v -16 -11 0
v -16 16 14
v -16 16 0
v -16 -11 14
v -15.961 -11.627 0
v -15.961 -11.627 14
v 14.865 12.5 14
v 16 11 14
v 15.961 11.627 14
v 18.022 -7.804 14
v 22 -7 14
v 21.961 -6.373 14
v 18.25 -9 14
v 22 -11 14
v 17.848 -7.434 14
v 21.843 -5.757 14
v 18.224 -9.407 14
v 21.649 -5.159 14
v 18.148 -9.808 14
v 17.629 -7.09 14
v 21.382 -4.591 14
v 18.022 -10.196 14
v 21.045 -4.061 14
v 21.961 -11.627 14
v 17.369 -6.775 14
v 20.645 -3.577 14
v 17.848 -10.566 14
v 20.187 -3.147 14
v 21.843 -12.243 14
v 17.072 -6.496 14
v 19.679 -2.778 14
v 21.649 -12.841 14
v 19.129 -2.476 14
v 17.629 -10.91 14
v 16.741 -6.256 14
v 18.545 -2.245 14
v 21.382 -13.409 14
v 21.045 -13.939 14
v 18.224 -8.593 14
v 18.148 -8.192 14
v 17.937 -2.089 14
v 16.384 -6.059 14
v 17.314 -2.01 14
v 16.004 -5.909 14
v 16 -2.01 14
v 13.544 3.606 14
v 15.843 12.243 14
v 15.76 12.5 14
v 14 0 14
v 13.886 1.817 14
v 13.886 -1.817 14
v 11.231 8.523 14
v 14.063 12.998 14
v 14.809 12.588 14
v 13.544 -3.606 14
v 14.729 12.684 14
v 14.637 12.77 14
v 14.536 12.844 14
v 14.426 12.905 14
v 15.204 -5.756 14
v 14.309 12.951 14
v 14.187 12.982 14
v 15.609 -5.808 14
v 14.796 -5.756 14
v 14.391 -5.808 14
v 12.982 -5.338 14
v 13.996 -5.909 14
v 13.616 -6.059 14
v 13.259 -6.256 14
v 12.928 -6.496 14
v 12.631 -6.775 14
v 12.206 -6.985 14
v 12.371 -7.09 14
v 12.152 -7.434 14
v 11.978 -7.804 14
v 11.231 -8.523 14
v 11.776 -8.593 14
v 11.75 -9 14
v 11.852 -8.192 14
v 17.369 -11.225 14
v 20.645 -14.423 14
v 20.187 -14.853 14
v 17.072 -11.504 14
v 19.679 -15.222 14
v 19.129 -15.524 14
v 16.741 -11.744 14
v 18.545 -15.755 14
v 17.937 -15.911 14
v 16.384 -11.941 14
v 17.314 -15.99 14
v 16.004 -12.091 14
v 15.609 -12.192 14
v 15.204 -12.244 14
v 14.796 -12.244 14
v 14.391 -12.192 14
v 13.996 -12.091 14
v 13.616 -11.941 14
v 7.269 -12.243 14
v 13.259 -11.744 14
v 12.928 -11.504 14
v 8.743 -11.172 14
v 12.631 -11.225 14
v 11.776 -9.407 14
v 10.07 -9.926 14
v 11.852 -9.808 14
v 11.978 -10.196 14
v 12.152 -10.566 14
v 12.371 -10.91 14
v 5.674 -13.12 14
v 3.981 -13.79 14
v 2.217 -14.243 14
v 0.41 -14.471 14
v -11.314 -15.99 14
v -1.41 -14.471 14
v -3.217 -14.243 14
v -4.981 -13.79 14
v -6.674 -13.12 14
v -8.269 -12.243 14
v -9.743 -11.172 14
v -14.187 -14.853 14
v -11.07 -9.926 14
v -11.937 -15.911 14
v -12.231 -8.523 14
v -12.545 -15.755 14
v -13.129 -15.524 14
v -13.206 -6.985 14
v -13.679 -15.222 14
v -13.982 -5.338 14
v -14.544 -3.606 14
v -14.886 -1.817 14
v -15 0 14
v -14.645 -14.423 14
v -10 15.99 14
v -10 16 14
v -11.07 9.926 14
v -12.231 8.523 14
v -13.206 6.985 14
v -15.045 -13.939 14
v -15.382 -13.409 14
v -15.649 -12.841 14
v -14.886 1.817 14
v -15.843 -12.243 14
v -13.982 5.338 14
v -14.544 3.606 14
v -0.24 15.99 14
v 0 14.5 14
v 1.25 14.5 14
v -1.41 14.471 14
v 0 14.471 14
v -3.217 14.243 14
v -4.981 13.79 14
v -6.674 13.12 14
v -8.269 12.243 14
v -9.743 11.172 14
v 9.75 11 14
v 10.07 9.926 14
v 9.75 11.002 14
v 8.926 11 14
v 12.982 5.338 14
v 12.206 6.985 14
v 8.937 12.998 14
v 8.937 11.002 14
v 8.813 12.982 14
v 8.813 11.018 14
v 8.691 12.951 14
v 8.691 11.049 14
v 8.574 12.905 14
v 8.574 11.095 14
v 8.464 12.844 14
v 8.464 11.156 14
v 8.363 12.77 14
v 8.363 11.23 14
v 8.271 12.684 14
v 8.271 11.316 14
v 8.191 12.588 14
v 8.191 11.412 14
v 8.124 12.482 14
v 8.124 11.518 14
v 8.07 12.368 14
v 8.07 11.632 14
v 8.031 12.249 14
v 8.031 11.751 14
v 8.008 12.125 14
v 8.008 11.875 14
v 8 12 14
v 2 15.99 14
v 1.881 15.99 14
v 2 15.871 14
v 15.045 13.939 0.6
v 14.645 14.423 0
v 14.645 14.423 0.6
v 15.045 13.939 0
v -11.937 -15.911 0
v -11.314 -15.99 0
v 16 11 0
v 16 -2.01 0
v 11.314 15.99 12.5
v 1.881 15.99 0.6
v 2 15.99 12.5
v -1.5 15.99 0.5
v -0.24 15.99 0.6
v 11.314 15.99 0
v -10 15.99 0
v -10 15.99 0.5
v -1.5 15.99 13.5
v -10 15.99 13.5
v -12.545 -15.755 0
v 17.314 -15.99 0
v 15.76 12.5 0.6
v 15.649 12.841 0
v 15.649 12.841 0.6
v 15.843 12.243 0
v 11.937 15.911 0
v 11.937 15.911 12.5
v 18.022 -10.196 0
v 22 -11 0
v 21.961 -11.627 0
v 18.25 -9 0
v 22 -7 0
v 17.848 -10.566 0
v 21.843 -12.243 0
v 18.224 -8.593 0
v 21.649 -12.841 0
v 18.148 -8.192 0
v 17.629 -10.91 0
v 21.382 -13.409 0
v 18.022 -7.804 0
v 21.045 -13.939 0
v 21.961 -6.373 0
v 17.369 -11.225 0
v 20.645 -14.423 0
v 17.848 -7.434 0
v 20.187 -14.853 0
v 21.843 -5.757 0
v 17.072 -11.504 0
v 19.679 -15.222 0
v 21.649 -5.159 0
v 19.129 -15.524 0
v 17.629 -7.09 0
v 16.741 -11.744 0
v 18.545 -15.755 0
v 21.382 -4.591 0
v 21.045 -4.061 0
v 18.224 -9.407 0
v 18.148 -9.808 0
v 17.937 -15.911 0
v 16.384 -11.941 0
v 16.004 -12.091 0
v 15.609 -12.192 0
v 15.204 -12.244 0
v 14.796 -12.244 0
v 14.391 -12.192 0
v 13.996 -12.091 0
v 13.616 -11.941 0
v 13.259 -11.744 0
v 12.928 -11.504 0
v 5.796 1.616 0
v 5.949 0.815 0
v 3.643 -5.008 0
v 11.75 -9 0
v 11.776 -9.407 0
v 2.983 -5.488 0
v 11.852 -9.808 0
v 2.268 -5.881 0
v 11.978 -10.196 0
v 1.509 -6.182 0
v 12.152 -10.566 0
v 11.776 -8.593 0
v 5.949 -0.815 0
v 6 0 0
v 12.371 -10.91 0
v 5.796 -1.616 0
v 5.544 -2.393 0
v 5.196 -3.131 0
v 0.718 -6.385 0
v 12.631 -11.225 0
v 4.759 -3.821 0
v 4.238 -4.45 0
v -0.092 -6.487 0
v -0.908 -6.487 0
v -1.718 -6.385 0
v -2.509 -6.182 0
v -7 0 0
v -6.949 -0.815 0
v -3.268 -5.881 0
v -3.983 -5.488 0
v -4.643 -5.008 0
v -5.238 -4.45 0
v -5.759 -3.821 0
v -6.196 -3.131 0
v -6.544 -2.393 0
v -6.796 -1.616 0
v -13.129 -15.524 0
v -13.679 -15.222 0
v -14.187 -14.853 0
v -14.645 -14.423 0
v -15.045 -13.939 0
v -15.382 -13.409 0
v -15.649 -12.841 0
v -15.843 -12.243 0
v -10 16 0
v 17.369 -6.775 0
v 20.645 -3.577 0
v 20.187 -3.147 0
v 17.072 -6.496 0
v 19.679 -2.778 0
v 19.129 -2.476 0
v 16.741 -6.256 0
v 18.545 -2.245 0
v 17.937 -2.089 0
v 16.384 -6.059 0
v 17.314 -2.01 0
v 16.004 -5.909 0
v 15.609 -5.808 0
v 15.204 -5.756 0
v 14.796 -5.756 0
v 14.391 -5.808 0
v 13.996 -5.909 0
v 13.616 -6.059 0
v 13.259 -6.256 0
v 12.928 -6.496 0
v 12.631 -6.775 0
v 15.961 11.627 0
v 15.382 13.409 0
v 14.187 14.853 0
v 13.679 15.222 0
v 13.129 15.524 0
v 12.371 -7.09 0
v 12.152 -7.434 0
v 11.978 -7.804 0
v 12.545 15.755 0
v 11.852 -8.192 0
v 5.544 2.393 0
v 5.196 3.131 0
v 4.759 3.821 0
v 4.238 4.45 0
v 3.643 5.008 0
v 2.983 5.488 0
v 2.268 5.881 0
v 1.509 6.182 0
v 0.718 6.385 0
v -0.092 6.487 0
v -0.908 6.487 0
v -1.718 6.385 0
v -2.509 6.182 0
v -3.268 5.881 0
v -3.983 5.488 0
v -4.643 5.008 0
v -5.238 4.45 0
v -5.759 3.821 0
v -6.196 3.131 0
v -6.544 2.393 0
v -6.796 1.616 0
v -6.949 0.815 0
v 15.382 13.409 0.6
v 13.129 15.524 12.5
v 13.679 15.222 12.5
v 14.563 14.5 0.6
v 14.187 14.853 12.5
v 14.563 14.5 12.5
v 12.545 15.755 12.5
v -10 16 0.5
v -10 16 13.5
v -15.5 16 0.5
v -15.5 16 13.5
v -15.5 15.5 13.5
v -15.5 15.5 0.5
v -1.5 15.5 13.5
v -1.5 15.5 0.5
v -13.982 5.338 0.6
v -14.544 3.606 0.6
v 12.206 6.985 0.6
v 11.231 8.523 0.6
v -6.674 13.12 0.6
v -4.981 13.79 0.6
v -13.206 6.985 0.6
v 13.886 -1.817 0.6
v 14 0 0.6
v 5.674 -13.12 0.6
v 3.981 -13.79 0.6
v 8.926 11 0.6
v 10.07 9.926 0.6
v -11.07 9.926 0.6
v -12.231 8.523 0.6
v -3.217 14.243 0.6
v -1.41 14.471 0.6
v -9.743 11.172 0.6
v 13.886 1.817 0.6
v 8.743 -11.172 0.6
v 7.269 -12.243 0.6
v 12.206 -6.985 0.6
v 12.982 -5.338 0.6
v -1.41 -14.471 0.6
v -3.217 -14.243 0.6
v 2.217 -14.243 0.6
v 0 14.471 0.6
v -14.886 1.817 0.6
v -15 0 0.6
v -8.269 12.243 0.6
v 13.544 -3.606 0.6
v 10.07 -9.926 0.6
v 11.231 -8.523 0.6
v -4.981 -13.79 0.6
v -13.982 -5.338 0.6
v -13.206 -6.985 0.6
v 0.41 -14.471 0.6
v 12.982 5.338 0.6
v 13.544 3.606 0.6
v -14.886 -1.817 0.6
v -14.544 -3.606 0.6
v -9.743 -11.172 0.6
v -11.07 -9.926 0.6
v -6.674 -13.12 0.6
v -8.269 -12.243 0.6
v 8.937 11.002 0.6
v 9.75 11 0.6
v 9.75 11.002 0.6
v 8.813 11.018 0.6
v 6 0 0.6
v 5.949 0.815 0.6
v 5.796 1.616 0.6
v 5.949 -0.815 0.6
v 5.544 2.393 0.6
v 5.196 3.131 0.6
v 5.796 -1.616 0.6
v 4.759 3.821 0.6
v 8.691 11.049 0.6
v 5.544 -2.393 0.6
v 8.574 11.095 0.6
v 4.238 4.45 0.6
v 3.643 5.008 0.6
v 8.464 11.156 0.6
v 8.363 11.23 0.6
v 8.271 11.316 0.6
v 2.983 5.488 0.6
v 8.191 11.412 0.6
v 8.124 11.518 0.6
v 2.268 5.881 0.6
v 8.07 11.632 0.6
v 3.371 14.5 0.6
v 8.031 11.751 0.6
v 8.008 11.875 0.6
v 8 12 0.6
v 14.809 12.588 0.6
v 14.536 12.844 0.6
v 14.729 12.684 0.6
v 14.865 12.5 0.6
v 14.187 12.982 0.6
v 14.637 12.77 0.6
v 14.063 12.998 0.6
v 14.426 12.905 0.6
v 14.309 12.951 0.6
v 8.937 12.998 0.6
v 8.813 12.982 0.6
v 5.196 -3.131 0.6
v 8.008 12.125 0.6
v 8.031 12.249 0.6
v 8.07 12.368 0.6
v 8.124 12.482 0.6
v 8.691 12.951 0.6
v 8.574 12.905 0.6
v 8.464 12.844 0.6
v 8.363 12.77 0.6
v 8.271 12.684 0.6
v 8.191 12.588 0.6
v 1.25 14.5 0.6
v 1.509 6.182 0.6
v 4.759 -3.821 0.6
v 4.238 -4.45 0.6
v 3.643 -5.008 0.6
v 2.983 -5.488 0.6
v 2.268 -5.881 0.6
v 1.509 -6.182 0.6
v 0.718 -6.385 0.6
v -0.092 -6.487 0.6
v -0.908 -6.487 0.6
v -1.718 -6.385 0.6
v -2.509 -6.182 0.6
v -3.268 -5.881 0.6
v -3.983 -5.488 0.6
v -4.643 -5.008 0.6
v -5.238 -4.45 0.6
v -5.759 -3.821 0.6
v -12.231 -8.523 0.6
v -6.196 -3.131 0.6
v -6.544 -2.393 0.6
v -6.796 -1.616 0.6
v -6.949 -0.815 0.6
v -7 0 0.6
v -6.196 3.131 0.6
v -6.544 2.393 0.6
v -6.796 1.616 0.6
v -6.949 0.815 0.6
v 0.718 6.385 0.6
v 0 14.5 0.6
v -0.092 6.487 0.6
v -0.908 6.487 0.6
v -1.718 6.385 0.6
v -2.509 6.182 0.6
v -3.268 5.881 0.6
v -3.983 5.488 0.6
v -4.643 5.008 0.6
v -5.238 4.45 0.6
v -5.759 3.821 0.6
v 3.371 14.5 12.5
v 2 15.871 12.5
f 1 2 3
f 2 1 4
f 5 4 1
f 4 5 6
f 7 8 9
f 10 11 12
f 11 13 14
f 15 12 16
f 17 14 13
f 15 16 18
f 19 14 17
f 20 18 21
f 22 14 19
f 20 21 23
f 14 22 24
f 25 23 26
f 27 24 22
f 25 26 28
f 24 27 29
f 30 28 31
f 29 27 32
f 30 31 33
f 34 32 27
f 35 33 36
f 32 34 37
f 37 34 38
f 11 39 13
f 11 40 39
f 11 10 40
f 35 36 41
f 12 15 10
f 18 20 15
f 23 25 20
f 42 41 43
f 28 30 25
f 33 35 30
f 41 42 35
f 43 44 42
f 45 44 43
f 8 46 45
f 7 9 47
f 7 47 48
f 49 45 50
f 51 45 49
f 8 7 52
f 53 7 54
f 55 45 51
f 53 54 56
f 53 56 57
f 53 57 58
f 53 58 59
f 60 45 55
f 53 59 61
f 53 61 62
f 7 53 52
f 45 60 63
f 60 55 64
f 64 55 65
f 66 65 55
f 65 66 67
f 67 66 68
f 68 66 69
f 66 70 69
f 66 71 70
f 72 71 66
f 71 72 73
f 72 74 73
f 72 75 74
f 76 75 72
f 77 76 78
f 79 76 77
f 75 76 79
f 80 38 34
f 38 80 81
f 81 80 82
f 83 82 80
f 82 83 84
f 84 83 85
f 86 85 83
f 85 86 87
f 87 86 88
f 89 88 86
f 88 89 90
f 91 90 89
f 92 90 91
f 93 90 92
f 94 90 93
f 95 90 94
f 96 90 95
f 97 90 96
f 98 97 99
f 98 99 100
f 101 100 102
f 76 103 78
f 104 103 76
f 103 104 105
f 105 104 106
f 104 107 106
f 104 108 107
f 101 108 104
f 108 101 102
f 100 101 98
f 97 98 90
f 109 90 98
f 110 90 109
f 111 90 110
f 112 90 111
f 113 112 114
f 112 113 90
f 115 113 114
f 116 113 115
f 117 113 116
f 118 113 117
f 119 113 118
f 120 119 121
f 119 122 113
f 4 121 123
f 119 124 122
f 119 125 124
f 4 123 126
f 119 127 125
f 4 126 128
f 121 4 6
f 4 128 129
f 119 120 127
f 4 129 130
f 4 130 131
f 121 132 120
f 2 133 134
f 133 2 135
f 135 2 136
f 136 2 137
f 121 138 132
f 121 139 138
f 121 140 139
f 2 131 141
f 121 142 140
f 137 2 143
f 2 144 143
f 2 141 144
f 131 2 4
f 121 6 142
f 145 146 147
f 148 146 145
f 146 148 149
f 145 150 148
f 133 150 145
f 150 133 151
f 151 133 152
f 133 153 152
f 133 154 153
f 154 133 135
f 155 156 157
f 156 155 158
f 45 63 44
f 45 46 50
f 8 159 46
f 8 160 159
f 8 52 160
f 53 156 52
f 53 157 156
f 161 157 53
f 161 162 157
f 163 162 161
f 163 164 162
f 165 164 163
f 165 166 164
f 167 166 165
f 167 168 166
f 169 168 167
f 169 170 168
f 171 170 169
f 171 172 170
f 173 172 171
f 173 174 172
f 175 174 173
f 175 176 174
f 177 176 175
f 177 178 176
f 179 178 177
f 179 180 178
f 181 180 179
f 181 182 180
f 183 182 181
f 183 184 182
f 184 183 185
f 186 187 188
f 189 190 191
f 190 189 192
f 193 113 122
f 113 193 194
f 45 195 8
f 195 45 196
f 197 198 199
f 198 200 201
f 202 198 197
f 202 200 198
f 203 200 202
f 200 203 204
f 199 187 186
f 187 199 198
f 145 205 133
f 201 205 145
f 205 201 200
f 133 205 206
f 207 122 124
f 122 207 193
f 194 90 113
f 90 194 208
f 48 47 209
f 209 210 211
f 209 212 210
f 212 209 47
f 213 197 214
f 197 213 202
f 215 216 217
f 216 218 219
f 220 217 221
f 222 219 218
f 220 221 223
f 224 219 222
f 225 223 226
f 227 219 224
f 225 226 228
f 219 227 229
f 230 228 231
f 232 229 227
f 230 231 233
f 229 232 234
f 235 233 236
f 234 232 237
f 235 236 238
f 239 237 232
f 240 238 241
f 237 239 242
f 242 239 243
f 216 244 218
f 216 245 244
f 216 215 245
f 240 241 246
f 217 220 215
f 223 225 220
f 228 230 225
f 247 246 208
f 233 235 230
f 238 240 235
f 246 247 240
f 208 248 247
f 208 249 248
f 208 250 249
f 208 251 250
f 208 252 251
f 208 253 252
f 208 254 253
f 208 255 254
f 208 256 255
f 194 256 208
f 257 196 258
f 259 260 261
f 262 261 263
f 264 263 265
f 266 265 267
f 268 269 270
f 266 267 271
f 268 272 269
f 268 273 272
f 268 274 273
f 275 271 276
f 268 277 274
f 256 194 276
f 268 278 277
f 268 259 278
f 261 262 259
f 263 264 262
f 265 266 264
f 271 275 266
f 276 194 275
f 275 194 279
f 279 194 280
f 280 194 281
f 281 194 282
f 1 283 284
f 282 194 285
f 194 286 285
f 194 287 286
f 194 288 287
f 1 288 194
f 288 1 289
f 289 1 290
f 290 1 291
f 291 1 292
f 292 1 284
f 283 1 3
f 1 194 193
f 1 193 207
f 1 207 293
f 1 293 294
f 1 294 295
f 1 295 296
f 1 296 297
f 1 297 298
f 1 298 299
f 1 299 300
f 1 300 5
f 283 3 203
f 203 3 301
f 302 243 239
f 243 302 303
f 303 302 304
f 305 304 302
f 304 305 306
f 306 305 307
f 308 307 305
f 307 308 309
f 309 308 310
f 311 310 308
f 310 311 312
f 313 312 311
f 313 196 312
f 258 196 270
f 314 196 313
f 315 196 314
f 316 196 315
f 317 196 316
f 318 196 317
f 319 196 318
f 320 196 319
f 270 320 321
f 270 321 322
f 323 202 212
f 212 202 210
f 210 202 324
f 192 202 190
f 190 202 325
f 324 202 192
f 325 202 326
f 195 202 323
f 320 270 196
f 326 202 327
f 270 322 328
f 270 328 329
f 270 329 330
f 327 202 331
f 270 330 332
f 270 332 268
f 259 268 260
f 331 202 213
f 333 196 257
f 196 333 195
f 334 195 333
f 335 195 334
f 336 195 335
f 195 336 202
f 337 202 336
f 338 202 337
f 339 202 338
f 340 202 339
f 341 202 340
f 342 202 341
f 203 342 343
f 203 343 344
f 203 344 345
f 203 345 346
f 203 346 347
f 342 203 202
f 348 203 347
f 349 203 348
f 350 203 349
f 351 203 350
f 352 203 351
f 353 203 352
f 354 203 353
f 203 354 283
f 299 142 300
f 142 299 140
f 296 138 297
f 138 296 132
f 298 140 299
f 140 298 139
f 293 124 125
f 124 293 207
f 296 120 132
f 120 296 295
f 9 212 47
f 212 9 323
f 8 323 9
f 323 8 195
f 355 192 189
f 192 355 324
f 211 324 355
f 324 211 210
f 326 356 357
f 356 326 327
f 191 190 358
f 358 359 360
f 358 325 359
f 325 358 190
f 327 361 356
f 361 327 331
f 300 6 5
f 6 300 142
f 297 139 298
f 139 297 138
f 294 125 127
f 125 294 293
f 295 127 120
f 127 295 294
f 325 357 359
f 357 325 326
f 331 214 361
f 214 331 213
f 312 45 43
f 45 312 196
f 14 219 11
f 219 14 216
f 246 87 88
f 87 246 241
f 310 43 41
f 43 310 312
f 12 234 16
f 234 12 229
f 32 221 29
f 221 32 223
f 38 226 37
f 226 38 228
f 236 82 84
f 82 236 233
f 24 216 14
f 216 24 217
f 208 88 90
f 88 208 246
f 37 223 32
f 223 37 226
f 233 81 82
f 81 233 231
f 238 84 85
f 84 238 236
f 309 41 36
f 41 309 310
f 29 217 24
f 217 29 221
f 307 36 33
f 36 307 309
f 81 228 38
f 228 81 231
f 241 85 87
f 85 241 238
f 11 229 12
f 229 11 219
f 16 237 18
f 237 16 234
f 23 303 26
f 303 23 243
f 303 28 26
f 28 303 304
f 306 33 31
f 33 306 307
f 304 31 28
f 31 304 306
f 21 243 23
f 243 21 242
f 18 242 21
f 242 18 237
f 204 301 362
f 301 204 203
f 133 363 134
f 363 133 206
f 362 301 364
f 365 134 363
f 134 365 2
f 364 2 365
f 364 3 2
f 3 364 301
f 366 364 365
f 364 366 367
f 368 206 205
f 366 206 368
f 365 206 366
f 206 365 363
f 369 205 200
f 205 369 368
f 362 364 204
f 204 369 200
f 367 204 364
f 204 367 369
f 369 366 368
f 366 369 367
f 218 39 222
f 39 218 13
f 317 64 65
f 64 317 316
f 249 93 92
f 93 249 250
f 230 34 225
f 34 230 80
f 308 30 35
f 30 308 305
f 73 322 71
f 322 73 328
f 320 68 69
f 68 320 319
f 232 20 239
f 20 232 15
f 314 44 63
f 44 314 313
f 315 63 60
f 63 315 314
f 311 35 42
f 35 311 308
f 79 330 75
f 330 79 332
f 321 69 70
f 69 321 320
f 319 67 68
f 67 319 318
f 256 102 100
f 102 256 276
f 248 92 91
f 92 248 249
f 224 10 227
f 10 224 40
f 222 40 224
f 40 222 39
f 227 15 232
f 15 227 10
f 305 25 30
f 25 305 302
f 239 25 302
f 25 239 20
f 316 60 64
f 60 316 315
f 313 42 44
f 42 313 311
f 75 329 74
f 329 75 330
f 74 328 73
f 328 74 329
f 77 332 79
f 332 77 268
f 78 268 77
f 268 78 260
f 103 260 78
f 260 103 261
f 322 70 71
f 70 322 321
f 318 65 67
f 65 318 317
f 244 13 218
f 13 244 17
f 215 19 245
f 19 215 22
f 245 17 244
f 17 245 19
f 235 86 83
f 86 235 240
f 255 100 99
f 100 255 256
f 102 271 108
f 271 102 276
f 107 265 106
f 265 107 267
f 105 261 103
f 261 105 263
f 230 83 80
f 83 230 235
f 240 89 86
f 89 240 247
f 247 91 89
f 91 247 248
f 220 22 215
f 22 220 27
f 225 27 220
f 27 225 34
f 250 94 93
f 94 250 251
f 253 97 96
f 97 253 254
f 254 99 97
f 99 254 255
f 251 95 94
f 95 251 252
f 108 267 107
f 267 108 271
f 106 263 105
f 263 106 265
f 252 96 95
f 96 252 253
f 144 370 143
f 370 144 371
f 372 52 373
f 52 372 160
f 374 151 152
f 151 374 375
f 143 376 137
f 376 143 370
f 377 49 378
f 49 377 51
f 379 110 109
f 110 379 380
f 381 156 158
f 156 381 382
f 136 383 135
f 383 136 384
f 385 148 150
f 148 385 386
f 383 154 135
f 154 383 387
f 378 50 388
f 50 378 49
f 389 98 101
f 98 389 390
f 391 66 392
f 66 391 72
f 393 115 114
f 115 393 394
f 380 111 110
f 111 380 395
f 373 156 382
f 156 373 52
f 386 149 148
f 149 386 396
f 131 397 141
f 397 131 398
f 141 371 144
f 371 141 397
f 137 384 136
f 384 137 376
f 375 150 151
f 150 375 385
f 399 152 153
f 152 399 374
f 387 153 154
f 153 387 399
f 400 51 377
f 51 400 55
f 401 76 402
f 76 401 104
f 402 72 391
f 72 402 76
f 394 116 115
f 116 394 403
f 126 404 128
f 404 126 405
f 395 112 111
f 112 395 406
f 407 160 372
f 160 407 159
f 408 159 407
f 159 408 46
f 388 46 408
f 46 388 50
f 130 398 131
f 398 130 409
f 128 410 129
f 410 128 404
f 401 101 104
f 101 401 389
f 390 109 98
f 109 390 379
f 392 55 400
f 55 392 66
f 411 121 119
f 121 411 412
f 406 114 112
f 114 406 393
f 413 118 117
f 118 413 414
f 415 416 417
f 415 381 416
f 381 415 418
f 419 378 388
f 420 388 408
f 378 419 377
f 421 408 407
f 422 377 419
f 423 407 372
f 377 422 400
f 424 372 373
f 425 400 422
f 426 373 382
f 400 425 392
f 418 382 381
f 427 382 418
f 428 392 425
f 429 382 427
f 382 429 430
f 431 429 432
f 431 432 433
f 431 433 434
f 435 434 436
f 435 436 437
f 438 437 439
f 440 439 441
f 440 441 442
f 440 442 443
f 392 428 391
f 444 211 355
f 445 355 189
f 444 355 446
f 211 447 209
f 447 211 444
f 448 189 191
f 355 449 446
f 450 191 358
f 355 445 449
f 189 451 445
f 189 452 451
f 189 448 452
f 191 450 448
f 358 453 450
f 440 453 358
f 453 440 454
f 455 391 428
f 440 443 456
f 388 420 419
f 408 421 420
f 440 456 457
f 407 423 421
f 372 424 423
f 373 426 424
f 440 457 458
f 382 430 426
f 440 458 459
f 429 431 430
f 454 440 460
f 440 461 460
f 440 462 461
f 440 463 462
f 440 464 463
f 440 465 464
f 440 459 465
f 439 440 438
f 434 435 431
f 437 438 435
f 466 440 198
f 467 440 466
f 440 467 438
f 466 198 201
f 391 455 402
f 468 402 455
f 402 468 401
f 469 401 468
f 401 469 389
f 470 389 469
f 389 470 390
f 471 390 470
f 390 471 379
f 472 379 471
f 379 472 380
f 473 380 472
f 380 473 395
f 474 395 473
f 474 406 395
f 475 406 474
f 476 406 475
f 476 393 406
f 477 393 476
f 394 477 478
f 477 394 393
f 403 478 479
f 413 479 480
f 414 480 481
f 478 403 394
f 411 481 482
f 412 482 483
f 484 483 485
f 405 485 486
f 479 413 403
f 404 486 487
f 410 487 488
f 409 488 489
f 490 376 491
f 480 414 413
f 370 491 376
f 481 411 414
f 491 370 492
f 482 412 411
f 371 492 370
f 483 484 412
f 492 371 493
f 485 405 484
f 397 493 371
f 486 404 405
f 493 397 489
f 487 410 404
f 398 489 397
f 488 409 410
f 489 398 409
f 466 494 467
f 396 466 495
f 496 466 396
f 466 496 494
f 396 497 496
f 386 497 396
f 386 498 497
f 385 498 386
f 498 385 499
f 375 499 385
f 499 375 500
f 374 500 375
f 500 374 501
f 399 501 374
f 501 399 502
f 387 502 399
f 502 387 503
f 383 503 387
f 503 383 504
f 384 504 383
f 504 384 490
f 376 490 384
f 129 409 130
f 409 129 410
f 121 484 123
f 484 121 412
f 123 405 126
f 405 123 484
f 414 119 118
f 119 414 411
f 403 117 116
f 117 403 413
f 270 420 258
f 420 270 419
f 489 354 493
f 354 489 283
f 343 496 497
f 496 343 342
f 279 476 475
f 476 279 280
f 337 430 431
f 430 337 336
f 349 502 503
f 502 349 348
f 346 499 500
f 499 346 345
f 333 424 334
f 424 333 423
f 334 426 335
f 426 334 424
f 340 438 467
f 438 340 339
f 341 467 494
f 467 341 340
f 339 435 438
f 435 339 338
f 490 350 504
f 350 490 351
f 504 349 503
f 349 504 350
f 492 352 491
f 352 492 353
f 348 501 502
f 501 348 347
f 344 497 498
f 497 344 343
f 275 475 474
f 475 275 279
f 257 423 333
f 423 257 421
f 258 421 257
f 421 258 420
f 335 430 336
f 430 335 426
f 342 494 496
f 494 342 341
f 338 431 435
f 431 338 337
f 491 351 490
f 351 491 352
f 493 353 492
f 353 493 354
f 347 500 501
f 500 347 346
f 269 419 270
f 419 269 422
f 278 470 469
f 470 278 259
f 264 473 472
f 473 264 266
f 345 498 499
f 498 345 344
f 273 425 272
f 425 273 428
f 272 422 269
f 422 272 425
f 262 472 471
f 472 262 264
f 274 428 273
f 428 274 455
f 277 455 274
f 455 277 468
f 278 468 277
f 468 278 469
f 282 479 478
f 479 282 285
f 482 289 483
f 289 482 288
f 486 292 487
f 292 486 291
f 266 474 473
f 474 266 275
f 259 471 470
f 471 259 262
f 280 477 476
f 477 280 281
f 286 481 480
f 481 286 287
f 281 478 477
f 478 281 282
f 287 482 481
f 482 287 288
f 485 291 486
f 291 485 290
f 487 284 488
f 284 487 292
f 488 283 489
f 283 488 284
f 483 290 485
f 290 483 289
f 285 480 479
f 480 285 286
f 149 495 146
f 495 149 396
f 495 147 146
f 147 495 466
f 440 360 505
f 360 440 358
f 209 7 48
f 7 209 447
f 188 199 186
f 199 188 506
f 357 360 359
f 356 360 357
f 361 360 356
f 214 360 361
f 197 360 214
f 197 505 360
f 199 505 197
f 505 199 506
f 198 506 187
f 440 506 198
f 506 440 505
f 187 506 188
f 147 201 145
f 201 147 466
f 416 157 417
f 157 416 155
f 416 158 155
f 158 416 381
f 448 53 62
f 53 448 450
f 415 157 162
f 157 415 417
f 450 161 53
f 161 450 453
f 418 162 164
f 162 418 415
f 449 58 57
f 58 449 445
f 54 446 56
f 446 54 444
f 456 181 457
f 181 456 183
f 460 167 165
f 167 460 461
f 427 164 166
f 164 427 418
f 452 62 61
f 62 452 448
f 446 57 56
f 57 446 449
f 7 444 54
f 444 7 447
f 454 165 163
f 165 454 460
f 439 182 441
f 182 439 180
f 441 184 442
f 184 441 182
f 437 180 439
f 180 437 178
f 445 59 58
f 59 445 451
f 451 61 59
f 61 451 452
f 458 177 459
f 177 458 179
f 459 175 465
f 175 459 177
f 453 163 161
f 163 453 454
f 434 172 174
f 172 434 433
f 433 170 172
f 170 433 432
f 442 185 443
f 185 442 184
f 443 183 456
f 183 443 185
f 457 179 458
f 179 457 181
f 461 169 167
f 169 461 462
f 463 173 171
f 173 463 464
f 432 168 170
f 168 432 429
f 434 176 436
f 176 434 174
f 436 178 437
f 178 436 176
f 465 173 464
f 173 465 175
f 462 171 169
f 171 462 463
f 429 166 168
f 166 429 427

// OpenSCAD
$fn = 50;


union() {
	difference() {
		union() {
			translate(v = [0, 0, 0]) {
				rotate(a = [0, 0, 0]) {
					hull() {
						translate(v = [-11.0000000000, 11.0000000000, 0]) {
							rotate(a = [0, 0, 0]) {
								translate(v = [0, 0, 0]) {
									rotate(a = [0, 0, 0]) {
										cylinder(h = 14, r = 5);
									}
								}
							}
						}
						translate(v = [11.0000000000, 11.0000000000, 0]) {
							rotate(a = [0, 0, 0]) {
								translate(v = [0, 0, 0]) {
									rotate(a = [0, 0, 0]) {
										cylinder(h = 14, r = 5);
									}
								}
							}
						}
						translate(v = [-11.0000000000, -11.0000000000, 0]) {
							rotate(a = [0, 0, 0]) {
								translate(v = [0, 0, 0]) {
									rotate(a = [0, 0, 0]) {
										cylinder(h = 14, r = 5);
									}
								}
							}
						}
						translate(v = [11.0000000000, -11.0000000000, 0]) {
							rotate(a = [0, 0, 0]) {
								translate(v = [0, 0, 0]) {
									rotate(a = [0, 0, 0]) {
										cylinder(h = 14, r = 5);
									}
								}
							}
						}
					}
				}
			}
			translate(v = [7.5000000000, -9.0000000000, 0]) {
				rotate(a = [0, 0, 0]) {
					hull() {
						translate(v = [-9.5000000000, 2.0000000000, 0]) {
							rotate(a = [0, 0, 0]) {
								translate(v = [0, 0, 0]) {
									rotate(a = [0, 0, 0]) {
										cylinder(h = 14, r = 5);
									}
								}
							}
						}
						translate(v = [9.5000000000, 2.0000000000, 0]) {
							rotate(a = [0, 0, 0]) {
								translate(v = [0, 0, 0]) {
									rotate(a = [0, 0, 0]) {
										cylinder(h = 14, r = 5);
									}
								}
							}
						}
						translate(v = [-9.5000000000, -2.0000000000, 0]) {
							rotate(a = [0, 0, 0]) {
								translate(v = [0, 0, 0]) {
									rotate(a = [0, 0, 0]) {
										cylinder(h = 14, r = 5);
									}
								}
							}
						}
						translate(v = [9.5000000000, -2.0000000000, 0]) {
							rotate(a = [0, 0, 0]) {
								translate(v = [0, 0, 0]) {
									rotate(a = [0, 0, 0]) {
										cylinder(h = 14, r = 5);
									}
								}
							}
						}
					}
				}
			}
			translate(v = [-16.0000000000, 10.0000000000, 0]) {
				rotate(a = [0, 0, 0]) {
					cube(size = [6, 6, 14]);
				}
			}
		}
		union() {
			translate(v = [-15.5000000000, 15.5000000000, 0.5000000000]) {
				rotate(a = [0, 0, 0]) {
					cube(size = [14, 0.5000000000, 13.0000000000]);
				}
			}
			translate(v = [15.0000000000, -9.0000000000, -125.0000000000]) {
				rotate(a = [0, 0, 0]) {
					cylinder(h = 250, r = 3.2500000000);
				}
			}
			translate(v = [-0.5000000000, 0.0000000000, 0.6000000000]) {
				rotate(a = [0, 0, 0]) {
					cylinder(h = 16.4000000000, r = 14.5000000000);
				}
			}
			translate(v = [-0.5000000000, 0.0000000000, -7.0000000000]) {
				rotate(a = [0, 0, 0]) {
					cylinder(h = 14, r = 6.5000000000);
				}
			}
			translate(v = [0.0000000000, 12.5000000000, 0.6000000000]) {
				rotate(a = [0, 0, 0]) {
					cube(size = [16.0000000000, 2, 16.4000000000]);
				}
			}
			translate(v = [2.0000000000, 12.5000000000, 12.5000000000]) {
				rotate(a = [0, 0, 0]) {
					cube(size = [14.0000000000, 5, 1.5000000000]);
				}
			}
			translate(v = [-3.0000000000, 18.7500000000, 0.6000000000]) {
				rotate(a = [0, 0, -45]) {
					cube(size = [10, 1.5000000000, 16.4000000000]);
				}
			}
			translate(v = [2.2500000000, 11.0000000000, 0.6000000000]) {
				rotate(a = [0, 0, 0]) {
					cube(size = [7.5000000000, 2, 13.4000000000]);
				}
			}
		}
	}
	union() {
		translate(v = [11.5000000000, 12, 0]) {
			rotate(a = [0, 0, 0]) {
				hull() {
					translate(v = [2.5000000000, 0, 0]) {
						rotate(a = [0, 0, 0]) {
							translate(v = [0, 0, 0]) {
								rotate(a = [0, 0, 0]) {
									cylinder(h = 14, r = 1.0000000000);
								}
							}
						}
					}
					translate(v = [-2.5000000000, 0, 0]) {
						rotate(a = [0, 0, 0]) {
							translate(v = [0, 0, 0]) {
								rotate(a = [0, 0, 0]) {
									cylinder(h = 14, r = 1.0000000000);
								}
							}
						}
					}
				}
			}
		}
	}
}
